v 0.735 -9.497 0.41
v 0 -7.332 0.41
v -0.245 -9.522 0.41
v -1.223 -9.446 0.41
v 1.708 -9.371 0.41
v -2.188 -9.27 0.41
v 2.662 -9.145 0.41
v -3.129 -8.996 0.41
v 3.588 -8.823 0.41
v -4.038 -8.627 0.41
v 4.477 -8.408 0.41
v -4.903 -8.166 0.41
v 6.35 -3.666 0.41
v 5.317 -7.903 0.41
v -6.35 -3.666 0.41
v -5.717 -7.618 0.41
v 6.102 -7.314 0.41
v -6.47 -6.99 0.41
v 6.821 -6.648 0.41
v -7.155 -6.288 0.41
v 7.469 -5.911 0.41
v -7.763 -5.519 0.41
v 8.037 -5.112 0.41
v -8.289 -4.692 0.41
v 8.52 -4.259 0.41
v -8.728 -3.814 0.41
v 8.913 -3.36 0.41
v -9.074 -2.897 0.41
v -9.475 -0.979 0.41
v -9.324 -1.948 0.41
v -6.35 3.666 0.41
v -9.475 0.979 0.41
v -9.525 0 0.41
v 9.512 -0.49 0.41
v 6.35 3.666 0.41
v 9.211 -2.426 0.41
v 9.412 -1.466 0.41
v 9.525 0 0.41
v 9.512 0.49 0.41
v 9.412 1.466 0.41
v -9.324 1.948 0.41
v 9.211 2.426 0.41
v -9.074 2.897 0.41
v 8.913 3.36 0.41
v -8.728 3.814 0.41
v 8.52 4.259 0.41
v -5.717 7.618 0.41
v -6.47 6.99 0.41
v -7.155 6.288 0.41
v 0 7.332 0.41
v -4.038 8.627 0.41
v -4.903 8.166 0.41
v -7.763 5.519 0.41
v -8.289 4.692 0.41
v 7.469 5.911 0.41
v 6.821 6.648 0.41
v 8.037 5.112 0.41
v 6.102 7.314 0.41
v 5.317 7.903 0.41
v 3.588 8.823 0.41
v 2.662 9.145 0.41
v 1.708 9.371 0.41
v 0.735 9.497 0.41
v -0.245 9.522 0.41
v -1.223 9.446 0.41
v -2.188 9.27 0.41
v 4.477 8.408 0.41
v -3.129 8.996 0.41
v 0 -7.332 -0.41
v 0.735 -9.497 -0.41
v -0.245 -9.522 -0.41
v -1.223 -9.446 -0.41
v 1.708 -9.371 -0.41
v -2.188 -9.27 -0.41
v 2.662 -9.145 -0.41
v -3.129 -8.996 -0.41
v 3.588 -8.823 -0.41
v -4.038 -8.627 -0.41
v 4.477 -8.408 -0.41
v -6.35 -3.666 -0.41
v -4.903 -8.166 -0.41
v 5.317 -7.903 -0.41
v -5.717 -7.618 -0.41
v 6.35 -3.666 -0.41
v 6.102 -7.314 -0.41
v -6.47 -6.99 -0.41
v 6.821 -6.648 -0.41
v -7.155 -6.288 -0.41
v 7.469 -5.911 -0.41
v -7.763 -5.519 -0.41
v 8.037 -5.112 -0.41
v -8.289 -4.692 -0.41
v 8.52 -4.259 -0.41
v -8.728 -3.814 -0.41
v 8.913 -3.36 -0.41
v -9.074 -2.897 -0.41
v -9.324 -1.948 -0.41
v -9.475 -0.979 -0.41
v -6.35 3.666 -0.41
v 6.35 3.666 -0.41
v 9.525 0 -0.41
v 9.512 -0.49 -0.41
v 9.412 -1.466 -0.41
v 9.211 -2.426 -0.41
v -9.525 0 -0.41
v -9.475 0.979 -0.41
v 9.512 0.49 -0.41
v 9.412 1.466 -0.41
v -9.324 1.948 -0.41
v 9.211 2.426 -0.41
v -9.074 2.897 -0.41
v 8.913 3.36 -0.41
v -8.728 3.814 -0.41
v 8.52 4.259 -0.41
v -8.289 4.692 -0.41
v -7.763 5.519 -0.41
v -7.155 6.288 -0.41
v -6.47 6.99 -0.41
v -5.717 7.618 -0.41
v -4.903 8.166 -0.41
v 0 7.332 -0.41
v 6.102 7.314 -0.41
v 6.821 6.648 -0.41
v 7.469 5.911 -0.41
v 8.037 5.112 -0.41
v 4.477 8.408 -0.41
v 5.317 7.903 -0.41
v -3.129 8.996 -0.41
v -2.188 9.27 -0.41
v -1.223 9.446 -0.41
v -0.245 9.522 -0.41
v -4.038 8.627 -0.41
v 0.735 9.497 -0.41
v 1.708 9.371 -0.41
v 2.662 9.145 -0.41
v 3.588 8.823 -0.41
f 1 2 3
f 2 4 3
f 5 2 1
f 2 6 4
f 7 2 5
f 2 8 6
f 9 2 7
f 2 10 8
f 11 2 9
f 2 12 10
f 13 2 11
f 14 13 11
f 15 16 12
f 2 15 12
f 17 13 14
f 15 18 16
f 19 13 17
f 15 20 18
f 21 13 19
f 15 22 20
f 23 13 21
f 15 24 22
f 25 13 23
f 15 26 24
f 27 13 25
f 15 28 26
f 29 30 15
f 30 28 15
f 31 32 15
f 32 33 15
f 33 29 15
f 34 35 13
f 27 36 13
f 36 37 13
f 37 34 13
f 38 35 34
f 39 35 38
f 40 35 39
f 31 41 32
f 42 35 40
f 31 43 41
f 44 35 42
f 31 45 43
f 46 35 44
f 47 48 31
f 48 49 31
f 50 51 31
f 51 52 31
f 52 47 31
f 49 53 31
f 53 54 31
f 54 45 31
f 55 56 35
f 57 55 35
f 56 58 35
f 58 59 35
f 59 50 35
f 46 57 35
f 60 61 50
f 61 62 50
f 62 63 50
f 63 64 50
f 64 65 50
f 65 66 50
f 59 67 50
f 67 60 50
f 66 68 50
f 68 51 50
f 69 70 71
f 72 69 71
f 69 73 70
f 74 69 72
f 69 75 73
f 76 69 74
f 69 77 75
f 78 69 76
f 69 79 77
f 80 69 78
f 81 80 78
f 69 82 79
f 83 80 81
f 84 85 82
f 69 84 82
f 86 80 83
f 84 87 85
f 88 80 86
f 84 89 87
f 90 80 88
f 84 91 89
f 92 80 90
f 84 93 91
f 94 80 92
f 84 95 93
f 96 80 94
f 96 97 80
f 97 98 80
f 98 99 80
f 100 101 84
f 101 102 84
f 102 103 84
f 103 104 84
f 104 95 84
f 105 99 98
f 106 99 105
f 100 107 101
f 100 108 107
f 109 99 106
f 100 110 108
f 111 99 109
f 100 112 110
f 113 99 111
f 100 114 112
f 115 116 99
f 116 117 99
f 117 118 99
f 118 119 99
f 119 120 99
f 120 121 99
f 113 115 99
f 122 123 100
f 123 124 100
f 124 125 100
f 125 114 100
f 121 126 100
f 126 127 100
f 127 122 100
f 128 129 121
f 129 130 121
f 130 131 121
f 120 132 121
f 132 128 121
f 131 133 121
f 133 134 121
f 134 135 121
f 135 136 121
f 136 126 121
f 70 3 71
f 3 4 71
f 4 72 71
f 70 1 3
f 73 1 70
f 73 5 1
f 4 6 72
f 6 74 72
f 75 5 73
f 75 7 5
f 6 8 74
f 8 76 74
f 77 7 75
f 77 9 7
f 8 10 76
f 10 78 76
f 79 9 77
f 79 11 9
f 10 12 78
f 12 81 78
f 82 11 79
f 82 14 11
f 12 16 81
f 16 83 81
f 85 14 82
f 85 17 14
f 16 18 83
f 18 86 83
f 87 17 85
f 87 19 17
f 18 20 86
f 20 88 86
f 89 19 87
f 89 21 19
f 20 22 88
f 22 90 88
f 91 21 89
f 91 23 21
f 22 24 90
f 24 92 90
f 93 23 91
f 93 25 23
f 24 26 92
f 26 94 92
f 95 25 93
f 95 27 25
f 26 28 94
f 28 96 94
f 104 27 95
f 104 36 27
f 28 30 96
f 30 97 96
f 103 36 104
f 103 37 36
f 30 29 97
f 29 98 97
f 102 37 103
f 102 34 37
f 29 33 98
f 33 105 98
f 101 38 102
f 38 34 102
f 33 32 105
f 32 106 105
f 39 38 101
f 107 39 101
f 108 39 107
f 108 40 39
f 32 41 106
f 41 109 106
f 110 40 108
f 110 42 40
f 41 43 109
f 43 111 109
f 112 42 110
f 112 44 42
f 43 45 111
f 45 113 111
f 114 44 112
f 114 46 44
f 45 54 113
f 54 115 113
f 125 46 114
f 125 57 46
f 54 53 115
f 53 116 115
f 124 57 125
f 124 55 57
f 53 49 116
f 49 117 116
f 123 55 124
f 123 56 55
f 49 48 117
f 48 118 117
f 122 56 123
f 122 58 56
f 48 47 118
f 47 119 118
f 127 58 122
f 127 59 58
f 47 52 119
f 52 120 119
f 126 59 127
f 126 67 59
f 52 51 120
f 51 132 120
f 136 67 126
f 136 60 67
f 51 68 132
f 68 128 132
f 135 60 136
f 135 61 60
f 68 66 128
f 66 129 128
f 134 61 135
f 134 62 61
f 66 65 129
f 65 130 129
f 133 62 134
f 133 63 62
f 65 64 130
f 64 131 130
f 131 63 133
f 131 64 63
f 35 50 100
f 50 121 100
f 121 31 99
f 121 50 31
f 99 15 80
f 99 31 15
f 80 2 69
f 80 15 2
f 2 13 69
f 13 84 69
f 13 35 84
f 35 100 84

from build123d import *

# Parameters (mm, degrees)
SKETCH1_R           = 9.525
BOSS_EXTRUDE1_DEPTH = 0.409575


with BuildPart() as part:
    # Sketch1 → Boss-Extrude1 (new, symmetric)
    with BuildSketch(Plane.XY):
        with Locations(Location((0, 0, 0), (0, 0, 180))):
            Circle(SKETCH1_R)
        Polygon((0, 7.332348419), (-6.35, 3.666174209), (-6.35, -3.666174209), (0, -7.332348419), (6.35, -3.666174209), (6.35, 3.666174209), align=None, mode=Mode.SUBTRACT)
    extrude(amount=BOSS_EXTRUDE1_DEPTH, both=True)


solid = part.part
